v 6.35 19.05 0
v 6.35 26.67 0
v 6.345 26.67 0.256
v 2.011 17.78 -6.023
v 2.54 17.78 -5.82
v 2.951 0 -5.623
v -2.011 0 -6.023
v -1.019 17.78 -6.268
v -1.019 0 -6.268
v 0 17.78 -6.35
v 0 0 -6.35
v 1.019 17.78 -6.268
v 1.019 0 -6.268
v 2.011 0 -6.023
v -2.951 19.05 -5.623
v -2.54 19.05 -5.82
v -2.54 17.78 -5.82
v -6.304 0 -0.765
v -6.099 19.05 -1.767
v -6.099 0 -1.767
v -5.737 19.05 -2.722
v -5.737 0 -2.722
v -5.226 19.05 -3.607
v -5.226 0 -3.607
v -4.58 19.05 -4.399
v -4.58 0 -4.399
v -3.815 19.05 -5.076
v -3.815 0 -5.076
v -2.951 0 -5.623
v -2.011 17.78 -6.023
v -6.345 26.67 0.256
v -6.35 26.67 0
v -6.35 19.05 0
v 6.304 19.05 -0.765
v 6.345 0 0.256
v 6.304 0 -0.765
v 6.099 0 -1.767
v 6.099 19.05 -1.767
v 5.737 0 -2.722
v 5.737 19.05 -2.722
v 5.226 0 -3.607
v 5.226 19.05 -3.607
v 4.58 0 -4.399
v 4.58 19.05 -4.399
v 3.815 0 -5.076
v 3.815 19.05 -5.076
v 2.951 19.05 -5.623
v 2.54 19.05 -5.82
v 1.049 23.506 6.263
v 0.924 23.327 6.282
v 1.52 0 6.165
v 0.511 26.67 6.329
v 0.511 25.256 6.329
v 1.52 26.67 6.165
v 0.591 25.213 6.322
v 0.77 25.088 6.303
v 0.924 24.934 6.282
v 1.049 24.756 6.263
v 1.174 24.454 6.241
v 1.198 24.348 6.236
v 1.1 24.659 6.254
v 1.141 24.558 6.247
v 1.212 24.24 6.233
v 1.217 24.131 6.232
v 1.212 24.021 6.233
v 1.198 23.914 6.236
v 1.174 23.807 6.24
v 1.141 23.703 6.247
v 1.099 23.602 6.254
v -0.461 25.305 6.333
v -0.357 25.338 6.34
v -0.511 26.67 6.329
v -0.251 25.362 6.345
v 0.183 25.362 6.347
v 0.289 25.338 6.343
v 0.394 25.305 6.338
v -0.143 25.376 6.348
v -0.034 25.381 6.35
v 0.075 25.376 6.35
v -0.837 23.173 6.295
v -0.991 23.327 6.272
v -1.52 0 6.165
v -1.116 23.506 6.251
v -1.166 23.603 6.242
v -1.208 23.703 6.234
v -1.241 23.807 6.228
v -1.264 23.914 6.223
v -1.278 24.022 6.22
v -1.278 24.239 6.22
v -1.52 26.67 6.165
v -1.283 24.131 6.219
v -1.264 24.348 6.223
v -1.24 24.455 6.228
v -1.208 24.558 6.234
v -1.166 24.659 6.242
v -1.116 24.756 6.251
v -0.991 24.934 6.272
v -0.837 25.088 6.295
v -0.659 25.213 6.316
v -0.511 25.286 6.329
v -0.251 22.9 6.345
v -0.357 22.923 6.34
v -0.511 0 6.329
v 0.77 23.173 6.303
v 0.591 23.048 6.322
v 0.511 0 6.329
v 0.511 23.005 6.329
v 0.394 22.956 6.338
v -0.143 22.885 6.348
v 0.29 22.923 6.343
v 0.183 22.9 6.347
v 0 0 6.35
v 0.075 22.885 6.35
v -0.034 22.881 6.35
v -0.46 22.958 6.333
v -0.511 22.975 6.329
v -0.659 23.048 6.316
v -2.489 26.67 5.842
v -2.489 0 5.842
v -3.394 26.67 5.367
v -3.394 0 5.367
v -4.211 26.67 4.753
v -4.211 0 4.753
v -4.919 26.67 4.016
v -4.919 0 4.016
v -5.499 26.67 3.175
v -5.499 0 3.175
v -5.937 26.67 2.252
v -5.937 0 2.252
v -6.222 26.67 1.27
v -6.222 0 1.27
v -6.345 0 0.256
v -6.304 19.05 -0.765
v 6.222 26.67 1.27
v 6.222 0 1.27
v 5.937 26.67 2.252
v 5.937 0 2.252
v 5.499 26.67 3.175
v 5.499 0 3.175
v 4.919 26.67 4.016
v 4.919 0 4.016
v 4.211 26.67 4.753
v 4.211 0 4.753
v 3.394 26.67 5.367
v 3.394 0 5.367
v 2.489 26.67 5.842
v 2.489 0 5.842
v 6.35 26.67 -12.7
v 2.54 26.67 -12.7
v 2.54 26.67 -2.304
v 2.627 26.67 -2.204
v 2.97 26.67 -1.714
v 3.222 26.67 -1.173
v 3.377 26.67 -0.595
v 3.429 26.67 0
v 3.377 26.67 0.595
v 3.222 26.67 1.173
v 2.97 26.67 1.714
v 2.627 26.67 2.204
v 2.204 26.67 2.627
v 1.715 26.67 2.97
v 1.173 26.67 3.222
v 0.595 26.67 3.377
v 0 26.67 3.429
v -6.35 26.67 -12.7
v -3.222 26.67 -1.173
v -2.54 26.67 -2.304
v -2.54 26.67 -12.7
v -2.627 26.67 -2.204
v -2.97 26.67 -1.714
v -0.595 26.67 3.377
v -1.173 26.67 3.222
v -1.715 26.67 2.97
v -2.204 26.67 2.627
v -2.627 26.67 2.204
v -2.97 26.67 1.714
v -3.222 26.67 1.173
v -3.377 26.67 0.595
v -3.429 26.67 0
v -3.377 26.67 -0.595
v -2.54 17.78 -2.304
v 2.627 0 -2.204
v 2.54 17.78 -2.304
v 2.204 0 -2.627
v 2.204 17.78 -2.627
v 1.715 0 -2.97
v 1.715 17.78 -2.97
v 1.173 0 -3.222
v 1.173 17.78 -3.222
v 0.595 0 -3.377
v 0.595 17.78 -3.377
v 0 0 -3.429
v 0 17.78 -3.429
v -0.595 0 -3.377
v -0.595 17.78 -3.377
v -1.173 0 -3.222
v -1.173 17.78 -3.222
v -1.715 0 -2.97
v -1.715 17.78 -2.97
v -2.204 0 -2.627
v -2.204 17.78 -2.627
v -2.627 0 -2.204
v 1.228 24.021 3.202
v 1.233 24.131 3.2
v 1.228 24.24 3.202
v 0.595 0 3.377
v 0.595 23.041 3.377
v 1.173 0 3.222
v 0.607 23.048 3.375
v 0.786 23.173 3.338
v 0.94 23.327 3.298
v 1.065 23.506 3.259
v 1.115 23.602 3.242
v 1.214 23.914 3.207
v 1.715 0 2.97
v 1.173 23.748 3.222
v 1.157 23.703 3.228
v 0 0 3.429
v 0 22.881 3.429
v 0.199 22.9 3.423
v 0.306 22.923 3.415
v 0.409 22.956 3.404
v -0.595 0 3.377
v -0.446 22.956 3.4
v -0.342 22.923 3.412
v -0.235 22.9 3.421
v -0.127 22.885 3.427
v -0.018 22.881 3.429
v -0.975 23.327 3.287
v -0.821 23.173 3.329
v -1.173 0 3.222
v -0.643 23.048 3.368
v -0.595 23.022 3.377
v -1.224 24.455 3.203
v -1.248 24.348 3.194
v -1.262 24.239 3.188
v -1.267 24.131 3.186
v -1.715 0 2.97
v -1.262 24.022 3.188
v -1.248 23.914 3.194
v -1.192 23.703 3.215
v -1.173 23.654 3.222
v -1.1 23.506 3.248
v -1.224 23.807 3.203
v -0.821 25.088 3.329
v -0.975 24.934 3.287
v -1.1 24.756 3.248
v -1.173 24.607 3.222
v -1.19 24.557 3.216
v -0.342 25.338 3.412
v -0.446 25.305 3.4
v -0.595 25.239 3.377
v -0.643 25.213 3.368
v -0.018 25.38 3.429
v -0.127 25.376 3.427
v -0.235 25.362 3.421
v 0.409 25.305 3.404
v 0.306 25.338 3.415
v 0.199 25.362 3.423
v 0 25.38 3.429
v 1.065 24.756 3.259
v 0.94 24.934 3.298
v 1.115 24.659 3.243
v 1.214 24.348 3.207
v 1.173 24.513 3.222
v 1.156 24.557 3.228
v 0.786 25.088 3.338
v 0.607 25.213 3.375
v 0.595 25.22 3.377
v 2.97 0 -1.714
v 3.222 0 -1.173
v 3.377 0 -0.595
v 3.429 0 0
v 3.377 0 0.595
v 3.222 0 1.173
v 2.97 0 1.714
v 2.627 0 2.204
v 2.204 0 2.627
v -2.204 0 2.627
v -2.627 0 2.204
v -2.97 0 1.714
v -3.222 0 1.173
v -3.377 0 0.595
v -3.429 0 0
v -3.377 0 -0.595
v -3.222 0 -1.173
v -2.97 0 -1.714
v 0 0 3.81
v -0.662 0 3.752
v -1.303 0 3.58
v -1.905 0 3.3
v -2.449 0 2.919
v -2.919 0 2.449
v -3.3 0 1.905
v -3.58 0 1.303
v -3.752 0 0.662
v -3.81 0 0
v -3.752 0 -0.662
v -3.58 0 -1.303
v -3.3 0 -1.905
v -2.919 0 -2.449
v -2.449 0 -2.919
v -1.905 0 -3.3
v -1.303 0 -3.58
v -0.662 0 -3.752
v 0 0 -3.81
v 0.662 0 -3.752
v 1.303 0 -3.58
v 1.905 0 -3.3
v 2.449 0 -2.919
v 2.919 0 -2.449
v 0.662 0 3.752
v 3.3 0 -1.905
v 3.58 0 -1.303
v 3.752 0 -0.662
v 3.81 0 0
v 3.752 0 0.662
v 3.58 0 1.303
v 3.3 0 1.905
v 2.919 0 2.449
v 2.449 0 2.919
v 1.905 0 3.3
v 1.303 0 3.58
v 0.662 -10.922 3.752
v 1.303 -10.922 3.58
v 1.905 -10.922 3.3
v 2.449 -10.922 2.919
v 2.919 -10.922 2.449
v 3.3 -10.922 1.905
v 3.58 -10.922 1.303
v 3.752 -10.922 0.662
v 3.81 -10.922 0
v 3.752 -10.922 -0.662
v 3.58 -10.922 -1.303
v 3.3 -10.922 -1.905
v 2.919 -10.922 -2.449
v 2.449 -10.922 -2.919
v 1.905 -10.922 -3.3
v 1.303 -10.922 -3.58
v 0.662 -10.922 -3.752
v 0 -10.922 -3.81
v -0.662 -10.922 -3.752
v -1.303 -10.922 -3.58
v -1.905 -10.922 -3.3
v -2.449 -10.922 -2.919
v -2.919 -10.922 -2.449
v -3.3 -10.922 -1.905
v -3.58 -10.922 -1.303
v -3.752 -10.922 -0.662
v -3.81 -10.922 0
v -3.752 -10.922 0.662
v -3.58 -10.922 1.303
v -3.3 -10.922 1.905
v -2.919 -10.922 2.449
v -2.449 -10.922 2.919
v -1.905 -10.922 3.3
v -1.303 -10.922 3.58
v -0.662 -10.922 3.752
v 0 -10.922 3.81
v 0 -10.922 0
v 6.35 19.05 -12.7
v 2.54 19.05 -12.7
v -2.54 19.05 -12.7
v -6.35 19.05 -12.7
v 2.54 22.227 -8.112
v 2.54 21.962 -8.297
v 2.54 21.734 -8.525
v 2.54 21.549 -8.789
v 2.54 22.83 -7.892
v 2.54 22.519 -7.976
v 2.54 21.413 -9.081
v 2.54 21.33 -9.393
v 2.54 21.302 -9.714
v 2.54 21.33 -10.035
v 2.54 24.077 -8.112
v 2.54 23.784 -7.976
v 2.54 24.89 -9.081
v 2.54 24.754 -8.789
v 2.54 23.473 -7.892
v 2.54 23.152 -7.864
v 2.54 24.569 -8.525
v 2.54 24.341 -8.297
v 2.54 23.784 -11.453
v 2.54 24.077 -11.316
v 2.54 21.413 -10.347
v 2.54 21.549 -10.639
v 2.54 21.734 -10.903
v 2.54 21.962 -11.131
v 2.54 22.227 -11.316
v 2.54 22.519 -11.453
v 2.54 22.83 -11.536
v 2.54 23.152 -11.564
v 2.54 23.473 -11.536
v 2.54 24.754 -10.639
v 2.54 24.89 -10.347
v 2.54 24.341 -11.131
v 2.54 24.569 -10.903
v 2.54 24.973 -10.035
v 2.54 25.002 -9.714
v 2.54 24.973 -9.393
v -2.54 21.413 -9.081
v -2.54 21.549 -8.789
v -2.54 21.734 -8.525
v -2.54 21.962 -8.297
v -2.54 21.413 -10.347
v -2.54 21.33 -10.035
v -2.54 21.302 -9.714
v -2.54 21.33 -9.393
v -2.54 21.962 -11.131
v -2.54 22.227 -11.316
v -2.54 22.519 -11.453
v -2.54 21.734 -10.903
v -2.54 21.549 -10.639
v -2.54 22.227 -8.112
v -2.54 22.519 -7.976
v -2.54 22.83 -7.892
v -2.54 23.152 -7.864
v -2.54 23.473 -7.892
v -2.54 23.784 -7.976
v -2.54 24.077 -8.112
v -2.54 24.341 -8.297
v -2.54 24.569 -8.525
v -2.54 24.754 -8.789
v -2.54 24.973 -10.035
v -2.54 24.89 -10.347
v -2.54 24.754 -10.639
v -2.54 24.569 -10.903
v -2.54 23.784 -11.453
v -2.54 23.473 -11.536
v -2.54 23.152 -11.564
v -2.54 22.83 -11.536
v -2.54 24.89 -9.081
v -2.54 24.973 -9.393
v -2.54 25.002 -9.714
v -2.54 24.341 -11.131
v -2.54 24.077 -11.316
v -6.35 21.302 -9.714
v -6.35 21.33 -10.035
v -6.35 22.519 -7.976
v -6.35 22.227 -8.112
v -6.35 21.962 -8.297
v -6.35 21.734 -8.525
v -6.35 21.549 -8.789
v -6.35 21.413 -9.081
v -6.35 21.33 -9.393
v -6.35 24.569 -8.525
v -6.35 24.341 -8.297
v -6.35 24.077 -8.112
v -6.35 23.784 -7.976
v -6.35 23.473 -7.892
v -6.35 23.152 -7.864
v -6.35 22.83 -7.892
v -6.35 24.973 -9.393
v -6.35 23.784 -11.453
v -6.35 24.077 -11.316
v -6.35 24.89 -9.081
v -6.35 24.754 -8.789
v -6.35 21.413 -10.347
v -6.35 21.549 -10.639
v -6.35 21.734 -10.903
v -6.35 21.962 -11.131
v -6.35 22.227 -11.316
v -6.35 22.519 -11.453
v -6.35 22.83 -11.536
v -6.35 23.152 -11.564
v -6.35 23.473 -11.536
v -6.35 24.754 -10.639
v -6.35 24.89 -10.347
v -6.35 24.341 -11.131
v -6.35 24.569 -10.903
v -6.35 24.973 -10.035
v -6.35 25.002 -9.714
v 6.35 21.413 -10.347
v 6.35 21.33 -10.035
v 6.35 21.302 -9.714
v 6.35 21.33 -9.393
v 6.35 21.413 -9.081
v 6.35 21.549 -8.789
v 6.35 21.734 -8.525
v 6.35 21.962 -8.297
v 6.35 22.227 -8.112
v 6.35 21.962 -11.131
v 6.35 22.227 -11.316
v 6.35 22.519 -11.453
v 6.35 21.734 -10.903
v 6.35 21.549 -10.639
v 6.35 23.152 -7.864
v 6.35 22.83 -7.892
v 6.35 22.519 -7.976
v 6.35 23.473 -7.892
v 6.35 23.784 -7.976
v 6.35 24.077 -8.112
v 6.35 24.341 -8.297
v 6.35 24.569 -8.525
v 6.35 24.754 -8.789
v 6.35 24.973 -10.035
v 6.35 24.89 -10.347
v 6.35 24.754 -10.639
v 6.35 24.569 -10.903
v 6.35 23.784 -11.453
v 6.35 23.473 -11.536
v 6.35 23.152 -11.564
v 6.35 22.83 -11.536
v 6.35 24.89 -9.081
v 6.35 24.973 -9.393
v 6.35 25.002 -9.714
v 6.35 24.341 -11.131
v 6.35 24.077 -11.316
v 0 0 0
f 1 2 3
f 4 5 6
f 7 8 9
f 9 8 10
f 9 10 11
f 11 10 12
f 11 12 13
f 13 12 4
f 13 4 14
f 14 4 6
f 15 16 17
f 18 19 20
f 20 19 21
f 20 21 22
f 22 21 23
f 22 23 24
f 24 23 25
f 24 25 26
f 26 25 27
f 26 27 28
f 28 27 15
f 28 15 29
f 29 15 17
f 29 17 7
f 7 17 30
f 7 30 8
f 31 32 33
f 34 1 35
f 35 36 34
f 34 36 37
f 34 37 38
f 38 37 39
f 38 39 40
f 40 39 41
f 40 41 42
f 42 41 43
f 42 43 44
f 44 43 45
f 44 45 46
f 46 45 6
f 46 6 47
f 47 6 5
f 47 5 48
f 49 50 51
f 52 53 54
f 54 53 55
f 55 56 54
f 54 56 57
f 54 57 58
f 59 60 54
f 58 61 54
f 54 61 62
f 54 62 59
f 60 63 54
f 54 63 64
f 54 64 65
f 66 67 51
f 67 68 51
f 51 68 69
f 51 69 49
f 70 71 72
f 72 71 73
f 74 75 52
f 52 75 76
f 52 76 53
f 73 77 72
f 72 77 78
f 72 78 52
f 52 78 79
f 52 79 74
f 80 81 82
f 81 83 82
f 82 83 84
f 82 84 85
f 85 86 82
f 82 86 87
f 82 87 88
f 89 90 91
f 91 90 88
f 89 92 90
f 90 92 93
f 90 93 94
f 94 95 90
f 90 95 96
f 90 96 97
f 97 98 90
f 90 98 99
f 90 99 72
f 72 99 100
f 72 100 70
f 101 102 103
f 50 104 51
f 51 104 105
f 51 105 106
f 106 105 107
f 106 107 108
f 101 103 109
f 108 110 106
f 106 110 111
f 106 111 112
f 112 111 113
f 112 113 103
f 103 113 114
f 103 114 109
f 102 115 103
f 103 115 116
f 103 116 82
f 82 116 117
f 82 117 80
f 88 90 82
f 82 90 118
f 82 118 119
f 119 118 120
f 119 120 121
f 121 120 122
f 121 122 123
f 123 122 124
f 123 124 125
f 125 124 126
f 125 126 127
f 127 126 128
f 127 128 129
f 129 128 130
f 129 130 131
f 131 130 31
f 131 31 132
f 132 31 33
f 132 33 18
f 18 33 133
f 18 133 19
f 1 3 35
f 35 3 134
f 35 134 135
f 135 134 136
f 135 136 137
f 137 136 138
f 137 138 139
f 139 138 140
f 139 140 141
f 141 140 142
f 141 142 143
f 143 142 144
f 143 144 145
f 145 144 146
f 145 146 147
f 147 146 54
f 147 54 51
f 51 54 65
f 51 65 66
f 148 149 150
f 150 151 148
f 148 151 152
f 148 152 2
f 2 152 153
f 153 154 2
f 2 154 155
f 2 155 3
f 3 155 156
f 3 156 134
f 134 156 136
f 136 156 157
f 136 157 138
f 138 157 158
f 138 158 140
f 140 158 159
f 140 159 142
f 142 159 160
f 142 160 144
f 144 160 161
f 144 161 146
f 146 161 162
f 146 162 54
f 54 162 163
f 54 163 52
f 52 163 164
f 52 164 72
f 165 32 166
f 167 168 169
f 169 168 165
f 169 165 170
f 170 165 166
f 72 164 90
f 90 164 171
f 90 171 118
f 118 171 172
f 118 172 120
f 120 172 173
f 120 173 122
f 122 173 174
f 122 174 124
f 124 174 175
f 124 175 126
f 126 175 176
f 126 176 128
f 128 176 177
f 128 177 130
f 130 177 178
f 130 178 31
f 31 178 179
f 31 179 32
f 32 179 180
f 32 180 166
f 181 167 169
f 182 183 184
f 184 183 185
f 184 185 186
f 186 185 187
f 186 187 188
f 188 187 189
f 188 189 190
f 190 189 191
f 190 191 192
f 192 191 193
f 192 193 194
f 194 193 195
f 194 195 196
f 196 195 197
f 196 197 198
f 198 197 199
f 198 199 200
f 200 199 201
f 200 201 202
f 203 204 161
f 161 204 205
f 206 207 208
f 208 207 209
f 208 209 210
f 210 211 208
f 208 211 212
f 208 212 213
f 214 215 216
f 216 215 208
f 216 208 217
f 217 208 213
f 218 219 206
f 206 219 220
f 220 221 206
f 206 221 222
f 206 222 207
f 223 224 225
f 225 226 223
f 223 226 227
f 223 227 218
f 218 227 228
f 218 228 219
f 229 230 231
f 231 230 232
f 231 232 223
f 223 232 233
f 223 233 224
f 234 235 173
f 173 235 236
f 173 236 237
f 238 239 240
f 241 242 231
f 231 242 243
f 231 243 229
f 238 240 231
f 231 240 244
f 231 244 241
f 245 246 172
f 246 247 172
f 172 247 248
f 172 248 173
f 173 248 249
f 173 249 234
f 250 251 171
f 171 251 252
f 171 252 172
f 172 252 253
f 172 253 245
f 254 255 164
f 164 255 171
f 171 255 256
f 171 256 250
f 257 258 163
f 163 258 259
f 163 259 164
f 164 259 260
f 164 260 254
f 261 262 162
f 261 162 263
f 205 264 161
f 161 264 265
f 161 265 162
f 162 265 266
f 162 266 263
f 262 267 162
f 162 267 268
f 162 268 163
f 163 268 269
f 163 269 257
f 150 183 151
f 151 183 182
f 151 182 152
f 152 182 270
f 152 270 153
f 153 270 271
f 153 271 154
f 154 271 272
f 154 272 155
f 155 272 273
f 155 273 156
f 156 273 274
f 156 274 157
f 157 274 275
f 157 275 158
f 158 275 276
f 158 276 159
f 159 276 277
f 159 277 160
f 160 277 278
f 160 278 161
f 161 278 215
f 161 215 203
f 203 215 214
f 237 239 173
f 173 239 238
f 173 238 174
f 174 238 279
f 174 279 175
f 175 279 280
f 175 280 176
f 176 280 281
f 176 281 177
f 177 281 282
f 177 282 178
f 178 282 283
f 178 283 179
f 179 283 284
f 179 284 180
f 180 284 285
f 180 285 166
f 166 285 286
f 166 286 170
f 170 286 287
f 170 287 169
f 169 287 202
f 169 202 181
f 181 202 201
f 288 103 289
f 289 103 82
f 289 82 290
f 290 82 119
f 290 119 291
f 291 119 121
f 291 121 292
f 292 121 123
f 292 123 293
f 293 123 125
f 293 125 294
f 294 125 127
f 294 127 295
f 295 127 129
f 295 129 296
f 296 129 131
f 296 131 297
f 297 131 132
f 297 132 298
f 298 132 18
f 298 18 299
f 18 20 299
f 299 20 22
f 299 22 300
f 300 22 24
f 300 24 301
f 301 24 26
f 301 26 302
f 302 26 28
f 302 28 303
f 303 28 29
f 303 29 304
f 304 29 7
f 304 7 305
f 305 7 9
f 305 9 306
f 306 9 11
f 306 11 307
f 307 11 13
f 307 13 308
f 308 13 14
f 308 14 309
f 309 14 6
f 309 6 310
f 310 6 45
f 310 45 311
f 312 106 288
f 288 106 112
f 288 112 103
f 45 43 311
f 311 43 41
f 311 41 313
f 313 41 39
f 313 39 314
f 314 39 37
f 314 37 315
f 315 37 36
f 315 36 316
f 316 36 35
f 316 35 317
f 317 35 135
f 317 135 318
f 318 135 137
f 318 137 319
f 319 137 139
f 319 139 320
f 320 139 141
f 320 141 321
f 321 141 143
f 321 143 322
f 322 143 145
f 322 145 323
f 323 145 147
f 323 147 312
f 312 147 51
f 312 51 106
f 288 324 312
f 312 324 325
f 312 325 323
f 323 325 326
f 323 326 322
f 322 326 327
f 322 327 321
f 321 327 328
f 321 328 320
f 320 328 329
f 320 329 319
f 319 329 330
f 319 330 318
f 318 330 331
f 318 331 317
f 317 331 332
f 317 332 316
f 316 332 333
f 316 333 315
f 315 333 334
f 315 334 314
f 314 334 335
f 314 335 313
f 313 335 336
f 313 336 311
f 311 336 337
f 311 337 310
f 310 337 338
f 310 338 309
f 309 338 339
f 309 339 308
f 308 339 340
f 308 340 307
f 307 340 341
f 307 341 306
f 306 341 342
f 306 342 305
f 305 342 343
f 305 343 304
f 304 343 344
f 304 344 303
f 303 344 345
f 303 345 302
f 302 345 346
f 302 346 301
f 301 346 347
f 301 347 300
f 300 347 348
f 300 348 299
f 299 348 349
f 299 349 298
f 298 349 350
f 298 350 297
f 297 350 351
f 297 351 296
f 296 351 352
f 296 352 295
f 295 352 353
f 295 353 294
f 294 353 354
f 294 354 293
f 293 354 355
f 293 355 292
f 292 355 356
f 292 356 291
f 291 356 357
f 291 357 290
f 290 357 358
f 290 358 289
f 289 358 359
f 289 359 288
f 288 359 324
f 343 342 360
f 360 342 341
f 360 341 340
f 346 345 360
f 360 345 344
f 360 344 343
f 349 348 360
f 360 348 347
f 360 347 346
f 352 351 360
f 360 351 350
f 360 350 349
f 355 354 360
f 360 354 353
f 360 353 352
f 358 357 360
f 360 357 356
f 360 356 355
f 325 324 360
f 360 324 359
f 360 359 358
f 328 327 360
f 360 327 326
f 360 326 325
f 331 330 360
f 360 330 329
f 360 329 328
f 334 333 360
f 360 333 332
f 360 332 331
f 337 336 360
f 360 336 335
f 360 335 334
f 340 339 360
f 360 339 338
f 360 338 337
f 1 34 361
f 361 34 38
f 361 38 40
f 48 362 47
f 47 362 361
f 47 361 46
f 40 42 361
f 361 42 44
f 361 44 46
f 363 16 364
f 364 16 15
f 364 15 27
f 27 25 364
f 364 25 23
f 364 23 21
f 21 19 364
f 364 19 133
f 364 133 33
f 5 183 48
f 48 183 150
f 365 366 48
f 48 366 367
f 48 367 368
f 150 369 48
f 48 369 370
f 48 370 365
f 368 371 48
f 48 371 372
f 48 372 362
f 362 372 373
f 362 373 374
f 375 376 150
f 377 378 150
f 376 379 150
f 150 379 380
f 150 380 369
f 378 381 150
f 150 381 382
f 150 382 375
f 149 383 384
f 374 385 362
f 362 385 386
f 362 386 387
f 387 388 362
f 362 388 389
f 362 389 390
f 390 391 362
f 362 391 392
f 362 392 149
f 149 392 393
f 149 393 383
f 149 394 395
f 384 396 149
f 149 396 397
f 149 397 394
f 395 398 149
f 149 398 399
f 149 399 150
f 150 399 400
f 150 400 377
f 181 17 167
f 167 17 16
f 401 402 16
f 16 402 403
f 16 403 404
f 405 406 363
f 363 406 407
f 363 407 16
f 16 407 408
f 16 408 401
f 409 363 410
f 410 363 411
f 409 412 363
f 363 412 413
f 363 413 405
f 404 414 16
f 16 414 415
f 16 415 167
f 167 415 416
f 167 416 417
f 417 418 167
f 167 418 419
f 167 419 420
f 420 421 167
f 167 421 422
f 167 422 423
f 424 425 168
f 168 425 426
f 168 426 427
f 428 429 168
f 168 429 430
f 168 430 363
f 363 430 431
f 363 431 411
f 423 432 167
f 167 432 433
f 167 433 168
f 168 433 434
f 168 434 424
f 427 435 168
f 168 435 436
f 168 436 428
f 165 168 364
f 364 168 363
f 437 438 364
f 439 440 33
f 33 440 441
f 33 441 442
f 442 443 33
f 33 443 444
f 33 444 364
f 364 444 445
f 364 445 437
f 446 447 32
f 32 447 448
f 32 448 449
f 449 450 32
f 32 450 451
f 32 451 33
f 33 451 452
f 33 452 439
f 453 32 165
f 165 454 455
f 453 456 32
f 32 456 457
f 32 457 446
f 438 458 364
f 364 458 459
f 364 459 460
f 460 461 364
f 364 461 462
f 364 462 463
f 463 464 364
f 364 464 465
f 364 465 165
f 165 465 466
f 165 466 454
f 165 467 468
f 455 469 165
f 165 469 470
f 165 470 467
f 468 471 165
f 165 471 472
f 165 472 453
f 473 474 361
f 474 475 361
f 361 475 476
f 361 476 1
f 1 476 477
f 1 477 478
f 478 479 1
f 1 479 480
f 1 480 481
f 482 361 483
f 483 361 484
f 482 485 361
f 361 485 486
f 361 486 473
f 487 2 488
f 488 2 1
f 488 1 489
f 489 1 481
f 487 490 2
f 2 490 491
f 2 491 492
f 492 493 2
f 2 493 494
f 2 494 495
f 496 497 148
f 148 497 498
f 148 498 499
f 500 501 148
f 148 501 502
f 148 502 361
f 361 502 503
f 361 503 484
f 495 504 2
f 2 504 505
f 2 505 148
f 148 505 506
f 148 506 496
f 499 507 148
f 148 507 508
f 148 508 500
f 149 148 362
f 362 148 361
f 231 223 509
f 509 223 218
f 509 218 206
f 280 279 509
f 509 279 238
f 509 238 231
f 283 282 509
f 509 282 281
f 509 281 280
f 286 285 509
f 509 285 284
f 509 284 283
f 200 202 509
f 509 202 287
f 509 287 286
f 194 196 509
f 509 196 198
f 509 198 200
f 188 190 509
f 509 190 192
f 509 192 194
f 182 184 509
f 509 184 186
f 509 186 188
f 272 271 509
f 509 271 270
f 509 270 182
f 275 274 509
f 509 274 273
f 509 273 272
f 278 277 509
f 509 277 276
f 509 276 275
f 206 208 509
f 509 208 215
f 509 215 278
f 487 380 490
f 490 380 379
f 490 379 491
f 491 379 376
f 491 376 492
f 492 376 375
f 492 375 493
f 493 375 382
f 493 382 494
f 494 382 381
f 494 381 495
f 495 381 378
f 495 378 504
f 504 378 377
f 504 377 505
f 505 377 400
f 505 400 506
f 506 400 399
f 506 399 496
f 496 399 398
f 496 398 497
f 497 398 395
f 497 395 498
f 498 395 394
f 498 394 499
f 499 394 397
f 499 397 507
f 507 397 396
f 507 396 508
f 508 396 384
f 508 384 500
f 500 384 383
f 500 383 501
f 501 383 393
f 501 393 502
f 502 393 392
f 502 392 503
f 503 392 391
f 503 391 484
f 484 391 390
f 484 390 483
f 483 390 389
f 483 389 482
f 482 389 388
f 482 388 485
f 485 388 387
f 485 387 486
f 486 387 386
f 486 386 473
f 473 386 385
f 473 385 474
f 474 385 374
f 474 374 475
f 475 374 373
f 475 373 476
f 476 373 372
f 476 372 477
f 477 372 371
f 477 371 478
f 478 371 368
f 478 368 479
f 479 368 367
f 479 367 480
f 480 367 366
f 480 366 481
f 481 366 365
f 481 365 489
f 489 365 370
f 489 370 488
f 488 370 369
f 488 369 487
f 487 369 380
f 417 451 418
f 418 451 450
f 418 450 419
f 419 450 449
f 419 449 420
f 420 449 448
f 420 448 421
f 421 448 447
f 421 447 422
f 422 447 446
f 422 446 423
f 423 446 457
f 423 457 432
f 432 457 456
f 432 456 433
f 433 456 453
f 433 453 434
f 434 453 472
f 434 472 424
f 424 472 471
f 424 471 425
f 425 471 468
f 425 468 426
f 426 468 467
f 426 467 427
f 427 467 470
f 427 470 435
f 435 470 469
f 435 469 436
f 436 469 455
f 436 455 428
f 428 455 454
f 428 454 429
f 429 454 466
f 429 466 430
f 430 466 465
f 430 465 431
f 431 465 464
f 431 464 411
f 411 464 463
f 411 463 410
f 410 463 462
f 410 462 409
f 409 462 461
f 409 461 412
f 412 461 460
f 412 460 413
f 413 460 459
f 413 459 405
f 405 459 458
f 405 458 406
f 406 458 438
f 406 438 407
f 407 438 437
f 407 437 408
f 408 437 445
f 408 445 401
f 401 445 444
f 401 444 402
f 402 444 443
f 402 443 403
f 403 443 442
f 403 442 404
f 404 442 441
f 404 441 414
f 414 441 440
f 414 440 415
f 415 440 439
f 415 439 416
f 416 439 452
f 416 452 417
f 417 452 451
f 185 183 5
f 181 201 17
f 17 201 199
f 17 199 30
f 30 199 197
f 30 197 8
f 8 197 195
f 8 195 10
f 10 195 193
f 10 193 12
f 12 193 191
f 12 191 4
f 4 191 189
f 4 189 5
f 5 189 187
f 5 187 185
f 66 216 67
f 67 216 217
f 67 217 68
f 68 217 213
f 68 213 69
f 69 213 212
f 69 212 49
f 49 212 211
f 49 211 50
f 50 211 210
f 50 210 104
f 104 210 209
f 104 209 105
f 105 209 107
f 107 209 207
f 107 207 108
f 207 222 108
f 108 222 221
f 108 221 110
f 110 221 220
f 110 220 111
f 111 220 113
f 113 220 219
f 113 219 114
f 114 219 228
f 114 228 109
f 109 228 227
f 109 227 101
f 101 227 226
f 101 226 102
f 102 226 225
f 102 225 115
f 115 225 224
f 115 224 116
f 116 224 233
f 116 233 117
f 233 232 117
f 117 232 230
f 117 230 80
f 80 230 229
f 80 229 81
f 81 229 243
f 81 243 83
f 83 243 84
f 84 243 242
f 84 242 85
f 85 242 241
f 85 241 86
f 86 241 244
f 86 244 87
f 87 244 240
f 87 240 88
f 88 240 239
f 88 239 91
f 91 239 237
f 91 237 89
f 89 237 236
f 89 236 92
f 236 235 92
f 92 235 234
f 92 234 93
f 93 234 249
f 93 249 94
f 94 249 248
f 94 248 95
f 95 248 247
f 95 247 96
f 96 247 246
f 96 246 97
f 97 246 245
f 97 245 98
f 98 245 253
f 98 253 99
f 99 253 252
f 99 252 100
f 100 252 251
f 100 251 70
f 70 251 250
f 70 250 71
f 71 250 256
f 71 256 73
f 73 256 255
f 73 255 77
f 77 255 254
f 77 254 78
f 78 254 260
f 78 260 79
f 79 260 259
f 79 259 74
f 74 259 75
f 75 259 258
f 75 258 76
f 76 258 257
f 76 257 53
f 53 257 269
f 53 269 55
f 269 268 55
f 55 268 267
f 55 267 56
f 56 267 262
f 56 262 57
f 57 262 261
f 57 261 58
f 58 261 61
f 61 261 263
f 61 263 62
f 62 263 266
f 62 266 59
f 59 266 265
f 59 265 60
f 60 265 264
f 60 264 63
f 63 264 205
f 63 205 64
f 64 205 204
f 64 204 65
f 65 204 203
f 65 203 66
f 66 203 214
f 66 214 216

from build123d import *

# Parameters (mm, degrees)
SKETCH1_R                   = 6.35
SKETCH1_R_2                 = 3.429
BOSS_EXTRUDE1_DEPTH         = 19.05
SKETCH2_R                   = 3.81
BOSS_EXTRUDE2_DEPTH         = 10.922
SKETCH3_R                   = 3.429
BOSS_EXTRUDE3_DEPTH         = 7.62
M3_CLEARANCE_HOLE1_D        = 3.7
M3_CLEARANCE_HOLE1_DEPTH    = 25.4
M3_CLEARANCE_HOLE1_TIP      = 1.111592145
CUT_EXTRUDE1_START          = -8.89
CUT_EXTRUDE1_DEPTH          = 8.89
TAP_DRILL_FOR_M3X0_5_TAP1_D = 2.5


with BuildPart() as part:
    # Sketch1 → Boss-Extrude1 (new body)
    with BuildSketch(Plane(origin=(0, 0, 0), x_dir=(1, 0, 0), z_dir=(0, 1, 0))):
        with Locations(Location((0, 0, 0), (0, 0, 90))):
            Circle(SKETCH1_R)
        with Locations(Location((0, 0, 0), (0, 0, 90))):
            Circle(SKETCH1_R_2, mode=Mode.SUBTRACT)
    extrude(amount=BOSS_EXTRUDE1_DEPTH)

    # Sketch2 → Boss-Extrude2 (add)
    with BuildSketch(Plane.XZ):
        with Locations(Location((0, 0, 0), (0, 0, 90))):
            Circle(SKETCH2_R)
    extrude(amount=BOSS_EXTRUDE2_DEPTH)

    # Sketch3 → Boss-Extrude3 (add)
    with BuildSketch(Plane(origin=(0, 19.05, 0), x_dir=(1, 0, 0), z_dir=(0, 1, 0))):
        with BuildLine():
            Line((2.54, 12.7), (2.54, 5.819871133))
            ThreePointArc((2.54, 5.819871133), (0, 6.35), (-2.54, 5.819871133))
            Line((-2.54, 5.819871133), (-2.54, 12.7))
            Line((-2.54, 12.7), (-6.35, 12.7))
            Line((-6.35, 12.7), (-6.35, 0))
            ThreePointArc((-6.35, 0), (0, -6.35), (6.35, 0))
            Line((6.35, 0), (6.35, 12.7))
            Line((6.35, 12.7), (2.54, 12.7))
        make_face()
        with Locations(Location((0, 0, 0), (0, 0, 90))):
            Circle(SKETCH3_R, mode=Mode.SUBTRACT)
    extrude(amount=BOSS_EXTRUDE3_DEPTH)

    # M3 Clearance Hole1
    with Locations(Plane.ZY.offset(6.35)):
        with Locations((-9.714139502, 23.151538797)):
            Hole(M3_CLEARANCE_HOLE1_D / 2, depth=M3_CLEARANCE_HOLE1_DEPTH)
            with Locations((0, 0, -(M3_CLEARANCE_HOLE1_DEPTH + M3_CLEARANCE_HOLE1_TIP / 2))):  # 118° drill point
                Cone(0, M3_CLEARANCE_HOLE1_D / 2, M3_CLEARANCE_HOLE1_TIP, mode=Mode.SUBTRACT)

    # Sketch7 → Cut-Extrude1 (cut)
    with BuildSketch(Plane(origin=(0, 26.67, 0), x_dir=(1, 0, 0), z_dir=(0, 1, 0)).offset(CUT_EXTRUDE1_START)):
        with BuildLine():
            Line((2.54, 2.303571358), (2.54, 5.819871133))
            ThreePointArc((2.54, 5.819871133), (0, 6.35), (-2.54, 5.819871133))
            Line((-2.54, 5.819871133), (-2.54, 2.303571358))
            ThreePointArc((-2.54, 2.303571358), (0, 3.429), (2.54, 2.303571358))
        make_face()
    extrude(amount=CUT_EXTRUDE1_DEPTH, mode=Mode.SUBTRACT)

    # Tap Drill for M3x0.5 Tap1 (through all)
    with Locations(Plane(origin=(-0.033798391, 24.130572857, 6.349910052), x_dir=(0.999985834964, 0, 0.005322581268), z_dir=(-0.005322581268, 0, 0.999985834964))):
        with Locations((0, 0)):
            Hole(TAP_DRILL_FOR_M3X0_5_TAP1_D / 2)


solid = part.part
